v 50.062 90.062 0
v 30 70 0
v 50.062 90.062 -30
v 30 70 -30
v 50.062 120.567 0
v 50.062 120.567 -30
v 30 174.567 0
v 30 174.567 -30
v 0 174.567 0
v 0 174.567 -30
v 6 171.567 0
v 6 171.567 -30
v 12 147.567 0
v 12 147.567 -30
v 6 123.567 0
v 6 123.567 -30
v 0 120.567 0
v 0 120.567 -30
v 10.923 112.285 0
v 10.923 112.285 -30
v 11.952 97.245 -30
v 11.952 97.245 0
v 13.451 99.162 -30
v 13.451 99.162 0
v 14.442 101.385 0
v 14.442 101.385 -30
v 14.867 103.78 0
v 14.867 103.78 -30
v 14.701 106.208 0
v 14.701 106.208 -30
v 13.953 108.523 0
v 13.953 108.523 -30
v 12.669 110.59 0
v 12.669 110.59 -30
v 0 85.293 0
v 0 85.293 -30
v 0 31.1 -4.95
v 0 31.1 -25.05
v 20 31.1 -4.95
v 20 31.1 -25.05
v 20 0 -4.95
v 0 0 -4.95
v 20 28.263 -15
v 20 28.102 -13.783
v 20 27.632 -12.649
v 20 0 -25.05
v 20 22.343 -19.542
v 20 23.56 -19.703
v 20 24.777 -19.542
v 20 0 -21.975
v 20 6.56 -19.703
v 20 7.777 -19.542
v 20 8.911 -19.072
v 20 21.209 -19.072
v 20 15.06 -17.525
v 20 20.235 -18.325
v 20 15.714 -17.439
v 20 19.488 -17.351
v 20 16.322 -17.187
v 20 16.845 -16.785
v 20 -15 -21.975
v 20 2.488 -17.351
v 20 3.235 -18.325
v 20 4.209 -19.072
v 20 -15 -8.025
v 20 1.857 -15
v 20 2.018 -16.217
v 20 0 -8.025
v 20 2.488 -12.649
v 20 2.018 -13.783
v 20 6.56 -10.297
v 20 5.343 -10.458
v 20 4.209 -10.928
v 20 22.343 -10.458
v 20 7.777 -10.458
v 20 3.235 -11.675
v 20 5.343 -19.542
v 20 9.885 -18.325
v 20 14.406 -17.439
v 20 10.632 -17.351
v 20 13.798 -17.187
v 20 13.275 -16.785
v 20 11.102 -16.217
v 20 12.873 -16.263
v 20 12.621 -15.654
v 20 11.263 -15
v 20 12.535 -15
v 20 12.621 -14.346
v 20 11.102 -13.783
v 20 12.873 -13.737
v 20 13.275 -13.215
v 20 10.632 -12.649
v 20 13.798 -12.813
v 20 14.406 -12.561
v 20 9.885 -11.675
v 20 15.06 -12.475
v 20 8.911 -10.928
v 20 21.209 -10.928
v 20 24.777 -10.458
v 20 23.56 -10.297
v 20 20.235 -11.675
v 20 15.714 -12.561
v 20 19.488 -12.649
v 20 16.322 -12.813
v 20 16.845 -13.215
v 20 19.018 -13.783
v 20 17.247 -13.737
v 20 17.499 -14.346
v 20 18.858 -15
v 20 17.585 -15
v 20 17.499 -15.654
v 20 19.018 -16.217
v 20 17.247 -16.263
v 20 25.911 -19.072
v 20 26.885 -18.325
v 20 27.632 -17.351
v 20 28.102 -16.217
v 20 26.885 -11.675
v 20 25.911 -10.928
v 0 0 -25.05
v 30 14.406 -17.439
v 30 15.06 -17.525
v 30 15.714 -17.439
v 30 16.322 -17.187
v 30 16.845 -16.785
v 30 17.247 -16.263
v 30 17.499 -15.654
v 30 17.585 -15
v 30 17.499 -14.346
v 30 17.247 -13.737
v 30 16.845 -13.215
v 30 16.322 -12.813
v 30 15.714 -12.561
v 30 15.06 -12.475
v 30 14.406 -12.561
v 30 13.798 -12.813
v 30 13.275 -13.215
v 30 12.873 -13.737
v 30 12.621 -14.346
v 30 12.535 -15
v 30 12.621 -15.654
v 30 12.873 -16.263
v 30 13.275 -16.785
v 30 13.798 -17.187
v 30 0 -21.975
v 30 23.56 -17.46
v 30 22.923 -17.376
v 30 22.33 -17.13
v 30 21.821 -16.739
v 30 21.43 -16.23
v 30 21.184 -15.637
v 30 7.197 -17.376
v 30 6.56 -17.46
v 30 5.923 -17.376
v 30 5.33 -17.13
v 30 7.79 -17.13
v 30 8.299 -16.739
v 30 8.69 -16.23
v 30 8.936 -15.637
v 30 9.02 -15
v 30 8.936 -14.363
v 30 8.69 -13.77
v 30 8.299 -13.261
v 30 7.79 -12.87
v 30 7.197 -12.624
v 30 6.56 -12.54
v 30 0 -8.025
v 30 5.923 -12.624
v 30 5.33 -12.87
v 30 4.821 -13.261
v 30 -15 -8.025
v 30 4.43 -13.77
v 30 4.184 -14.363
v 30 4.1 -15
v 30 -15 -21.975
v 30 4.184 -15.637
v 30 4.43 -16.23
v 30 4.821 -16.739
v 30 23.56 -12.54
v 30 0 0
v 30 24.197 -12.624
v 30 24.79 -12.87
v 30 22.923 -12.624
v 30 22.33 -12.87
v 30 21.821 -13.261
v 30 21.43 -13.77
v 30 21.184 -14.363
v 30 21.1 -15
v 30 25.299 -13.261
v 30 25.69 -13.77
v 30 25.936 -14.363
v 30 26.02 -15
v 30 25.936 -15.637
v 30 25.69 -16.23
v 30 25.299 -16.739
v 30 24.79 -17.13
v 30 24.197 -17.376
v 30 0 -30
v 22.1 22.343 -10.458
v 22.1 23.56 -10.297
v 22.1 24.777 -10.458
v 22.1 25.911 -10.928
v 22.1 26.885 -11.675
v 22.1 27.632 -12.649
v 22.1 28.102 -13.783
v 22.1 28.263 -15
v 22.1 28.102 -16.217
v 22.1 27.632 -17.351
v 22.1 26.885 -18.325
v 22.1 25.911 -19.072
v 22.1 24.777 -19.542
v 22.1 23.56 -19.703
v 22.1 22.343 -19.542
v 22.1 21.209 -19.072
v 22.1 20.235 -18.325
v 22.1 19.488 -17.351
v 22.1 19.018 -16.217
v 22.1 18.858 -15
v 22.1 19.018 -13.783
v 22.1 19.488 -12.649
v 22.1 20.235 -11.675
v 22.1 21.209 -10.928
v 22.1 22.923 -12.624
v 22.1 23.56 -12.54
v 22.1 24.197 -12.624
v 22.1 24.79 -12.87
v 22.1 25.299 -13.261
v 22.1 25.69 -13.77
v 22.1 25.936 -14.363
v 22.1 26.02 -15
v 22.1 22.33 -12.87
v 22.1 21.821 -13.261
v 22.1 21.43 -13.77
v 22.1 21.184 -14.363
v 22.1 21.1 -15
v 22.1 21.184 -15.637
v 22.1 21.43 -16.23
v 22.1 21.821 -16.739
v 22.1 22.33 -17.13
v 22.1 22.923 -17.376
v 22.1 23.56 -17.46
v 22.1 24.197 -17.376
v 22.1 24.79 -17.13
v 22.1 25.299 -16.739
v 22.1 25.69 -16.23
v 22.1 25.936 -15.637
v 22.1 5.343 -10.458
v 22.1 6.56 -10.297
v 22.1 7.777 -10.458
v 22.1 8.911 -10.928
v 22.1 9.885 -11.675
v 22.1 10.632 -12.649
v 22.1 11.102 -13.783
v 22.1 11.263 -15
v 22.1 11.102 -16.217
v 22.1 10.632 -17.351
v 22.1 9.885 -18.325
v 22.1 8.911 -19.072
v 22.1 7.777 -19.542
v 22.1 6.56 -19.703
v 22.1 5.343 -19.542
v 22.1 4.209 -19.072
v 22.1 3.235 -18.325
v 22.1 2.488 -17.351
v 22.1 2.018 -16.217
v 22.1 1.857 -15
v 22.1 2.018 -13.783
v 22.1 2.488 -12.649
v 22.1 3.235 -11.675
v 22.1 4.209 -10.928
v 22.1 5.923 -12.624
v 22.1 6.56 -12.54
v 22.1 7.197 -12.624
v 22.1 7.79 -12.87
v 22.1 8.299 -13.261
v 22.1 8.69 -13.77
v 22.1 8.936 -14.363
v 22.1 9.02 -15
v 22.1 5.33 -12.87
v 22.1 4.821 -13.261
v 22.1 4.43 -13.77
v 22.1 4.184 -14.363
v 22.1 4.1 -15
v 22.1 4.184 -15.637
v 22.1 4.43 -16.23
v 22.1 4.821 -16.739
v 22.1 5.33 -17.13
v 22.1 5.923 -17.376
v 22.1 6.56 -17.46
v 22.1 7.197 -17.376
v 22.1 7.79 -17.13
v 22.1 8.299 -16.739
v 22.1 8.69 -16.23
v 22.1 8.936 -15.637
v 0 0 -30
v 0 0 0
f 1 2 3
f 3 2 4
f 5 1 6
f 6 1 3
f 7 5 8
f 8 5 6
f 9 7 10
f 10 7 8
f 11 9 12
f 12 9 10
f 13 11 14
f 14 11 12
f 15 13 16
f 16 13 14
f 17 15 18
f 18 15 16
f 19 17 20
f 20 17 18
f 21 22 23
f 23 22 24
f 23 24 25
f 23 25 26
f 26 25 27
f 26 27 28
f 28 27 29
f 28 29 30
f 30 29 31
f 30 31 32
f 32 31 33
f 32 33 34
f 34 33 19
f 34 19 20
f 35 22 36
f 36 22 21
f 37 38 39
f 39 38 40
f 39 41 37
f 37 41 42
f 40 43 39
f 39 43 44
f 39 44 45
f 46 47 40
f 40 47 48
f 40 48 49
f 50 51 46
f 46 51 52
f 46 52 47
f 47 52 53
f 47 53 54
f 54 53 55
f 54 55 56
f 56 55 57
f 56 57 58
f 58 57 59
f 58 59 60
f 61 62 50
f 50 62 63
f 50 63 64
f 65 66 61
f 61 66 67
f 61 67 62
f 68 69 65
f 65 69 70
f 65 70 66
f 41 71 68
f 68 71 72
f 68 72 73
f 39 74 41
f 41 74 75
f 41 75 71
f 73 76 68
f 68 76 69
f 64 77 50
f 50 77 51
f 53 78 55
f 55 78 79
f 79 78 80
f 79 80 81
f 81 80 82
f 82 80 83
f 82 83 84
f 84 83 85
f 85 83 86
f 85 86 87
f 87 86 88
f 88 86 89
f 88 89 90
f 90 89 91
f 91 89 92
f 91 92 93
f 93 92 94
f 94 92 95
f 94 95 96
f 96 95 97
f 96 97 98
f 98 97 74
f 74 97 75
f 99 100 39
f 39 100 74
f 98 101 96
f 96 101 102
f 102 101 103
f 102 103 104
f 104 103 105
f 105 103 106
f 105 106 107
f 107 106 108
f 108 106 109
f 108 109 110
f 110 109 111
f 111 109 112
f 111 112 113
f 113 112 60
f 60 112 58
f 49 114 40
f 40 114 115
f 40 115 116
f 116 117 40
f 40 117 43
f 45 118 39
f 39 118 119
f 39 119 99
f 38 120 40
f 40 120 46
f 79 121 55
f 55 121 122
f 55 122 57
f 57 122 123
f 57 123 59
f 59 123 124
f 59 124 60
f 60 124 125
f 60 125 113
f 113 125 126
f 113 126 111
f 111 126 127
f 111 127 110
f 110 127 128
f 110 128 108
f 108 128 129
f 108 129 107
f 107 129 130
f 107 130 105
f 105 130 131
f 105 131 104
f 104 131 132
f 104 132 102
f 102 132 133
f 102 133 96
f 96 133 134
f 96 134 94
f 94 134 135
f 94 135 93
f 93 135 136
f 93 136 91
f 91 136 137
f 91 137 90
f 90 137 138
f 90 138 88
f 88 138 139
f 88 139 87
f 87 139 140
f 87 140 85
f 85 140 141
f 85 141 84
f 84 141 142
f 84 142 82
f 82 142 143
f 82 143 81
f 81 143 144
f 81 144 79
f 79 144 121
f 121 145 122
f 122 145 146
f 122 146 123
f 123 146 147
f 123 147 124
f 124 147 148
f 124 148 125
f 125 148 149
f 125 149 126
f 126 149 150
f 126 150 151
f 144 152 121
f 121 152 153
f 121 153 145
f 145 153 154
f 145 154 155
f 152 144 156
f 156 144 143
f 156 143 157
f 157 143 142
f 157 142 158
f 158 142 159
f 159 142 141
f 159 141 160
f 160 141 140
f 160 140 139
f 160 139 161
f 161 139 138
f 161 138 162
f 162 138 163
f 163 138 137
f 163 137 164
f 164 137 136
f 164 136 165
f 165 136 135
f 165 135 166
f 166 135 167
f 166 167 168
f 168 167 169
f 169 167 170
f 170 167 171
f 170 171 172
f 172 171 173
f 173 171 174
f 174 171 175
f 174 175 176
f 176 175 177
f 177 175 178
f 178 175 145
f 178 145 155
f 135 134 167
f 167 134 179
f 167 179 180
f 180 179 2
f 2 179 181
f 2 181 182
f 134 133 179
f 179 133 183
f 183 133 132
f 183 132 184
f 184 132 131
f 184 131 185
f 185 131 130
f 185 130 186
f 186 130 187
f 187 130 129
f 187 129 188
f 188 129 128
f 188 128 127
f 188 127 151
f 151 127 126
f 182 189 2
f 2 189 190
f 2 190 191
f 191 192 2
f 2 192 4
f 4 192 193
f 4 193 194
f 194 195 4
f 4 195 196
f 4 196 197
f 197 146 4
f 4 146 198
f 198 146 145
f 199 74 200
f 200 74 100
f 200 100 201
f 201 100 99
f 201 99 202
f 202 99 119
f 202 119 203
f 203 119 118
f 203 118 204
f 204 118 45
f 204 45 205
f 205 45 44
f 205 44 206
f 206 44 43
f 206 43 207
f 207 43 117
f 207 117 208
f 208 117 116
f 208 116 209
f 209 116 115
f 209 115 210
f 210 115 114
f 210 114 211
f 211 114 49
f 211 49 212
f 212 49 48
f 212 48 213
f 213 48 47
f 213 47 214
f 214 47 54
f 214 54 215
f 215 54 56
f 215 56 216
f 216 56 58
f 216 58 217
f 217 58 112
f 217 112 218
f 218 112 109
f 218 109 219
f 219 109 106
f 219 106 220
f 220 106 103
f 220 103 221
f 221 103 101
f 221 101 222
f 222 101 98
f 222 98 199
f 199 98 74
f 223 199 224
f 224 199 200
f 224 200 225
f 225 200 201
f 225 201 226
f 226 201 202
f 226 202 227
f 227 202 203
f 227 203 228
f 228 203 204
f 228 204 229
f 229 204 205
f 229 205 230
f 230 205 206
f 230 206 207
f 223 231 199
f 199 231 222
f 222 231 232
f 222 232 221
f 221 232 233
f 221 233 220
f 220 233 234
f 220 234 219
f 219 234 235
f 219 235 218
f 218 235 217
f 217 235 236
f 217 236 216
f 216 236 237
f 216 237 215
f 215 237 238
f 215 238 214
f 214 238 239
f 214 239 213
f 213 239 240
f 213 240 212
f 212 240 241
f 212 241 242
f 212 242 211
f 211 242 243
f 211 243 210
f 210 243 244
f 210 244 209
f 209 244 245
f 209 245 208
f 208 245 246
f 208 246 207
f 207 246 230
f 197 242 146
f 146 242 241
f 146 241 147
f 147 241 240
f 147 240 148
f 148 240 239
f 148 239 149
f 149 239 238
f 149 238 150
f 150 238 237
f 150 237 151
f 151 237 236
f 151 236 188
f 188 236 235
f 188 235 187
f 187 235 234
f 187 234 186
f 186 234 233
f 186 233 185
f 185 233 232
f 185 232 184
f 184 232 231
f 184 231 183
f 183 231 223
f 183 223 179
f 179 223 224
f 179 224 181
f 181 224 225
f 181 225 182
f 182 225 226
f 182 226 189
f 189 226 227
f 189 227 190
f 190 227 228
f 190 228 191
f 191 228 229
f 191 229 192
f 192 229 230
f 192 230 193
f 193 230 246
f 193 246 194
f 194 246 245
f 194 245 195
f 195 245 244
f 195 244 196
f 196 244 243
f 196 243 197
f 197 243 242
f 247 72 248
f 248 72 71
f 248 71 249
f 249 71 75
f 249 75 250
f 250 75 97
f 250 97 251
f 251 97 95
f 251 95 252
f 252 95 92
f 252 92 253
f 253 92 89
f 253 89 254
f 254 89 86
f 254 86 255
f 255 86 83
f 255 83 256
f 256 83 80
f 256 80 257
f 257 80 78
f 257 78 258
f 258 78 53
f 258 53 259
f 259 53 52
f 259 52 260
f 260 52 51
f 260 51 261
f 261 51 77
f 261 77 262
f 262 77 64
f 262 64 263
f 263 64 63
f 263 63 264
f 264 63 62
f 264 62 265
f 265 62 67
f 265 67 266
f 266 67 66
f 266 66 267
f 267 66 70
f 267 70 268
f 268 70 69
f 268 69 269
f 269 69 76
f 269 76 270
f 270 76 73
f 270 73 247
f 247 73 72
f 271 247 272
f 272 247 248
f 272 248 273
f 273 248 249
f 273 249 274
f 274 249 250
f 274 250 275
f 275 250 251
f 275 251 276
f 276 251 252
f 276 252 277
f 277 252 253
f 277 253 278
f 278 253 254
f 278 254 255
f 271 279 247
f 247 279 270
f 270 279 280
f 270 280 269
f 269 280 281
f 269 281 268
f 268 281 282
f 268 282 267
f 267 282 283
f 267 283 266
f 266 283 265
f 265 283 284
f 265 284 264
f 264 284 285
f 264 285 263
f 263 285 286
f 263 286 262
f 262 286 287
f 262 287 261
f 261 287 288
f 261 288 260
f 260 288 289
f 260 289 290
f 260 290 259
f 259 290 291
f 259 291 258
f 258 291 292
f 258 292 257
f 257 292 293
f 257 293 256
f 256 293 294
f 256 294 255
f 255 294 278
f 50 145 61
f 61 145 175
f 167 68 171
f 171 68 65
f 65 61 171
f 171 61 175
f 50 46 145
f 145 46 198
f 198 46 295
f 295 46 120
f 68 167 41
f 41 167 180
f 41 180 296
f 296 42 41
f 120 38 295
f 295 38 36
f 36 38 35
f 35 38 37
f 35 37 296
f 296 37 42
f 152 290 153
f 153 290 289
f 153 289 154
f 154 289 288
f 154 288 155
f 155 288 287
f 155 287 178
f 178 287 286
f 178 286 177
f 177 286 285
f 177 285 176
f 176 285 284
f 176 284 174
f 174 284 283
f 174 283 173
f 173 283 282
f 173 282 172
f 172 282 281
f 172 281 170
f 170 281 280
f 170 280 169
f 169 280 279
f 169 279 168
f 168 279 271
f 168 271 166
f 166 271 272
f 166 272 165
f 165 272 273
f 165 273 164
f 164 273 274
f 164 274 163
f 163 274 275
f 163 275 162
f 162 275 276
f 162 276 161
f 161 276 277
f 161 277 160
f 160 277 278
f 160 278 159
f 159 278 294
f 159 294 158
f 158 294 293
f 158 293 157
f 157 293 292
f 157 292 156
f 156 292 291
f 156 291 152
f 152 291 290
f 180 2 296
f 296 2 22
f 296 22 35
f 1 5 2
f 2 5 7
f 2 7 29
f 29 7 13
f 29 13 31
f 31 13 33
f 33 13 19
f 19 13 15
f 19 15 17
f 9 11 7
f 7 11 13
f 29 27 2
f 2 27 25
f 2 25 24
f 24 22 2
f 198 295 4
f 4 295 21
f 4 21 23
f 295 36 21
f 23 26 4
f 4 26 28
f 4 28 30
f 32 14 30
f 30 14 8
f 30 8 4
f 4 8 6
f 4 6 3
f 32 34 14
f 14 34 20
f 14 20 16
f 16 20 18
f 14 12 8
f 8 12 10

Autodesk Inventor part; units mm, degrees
ref_plane "YZ Plane" through (0, 0, 0) normal (1, 0, 0) x (0, 1, 0)
ref_plane "XZ Plane" through (0, 0, 0) normal (0, 1, 0) x (-1, 0, 0)
ref_plane "XY Plane" through (0, 0, 0) normal (0, 0, 1) x (1, 0, 0)
sketch "Sketch1" plane through (0, 0, 0) normal (0, 0, 1) x (1, 0, 0)
  line L0 (0, 0) -> (25, 0)
  line L1 (25, 0) -> (25, 40)
  line L2 (25, 40) -> (0, 40)
  line L3 (0, 40) -> (0, 0)
  dimension "d1" = 25
  dimension "d2" = 40
  dimension "d3" = 25
extrude "Extrusion1" add sketch "Sketch1" against normal blind 30
sketch "Sketch2" plane through (25, 0, 0) normal (1, 0, 0) x (0, 0, -1)
  line L0 (0, 0) -> (30, 0) projected
  circle A0 centre (15, 6.56) radius 2.46
extrude "Extrusion2" cut sketch "Sketch2" against normal blind 30
sketch "Sketch3" plane through (0, 0, 0) normal (-1, 0, 0) x (0, 0, 1)
  line L0 (0, 0) -> (-30, 0) projected
  line L1 (-25.05, 0) -> (-4.95, 0)
  line L2 (-4.95, 0) -> (-4.95, 33.12)
  line L3 (-4.95, 33.12) -> (-25.05, 33.12)
  line L4 (-25.05, 33.12) -> (-25.05, 0)
  dimension "d11" = 20.1
extrude "Extrusion3" cut sketch "Sketch3" against normal blind 20
sketch "Sketch4" plane through (0, 0, 0) normal (0, -1, 0) x (1, 0, 0)
  line L0 (20, -4.95) -> (20, -25.05) projected
  line L1 (20, -15) -> (25, -15)
  line L2 (25, 0) -> (25, -30) projected
  line L3 (20, -8.025) -> (25, -8.025)
  line L4 (25, -8.025) -> (25, -21.975)
  line L5 (25, -21.975) -> (20, -21.975)
  line L6 (20, -21.975) -> (20, -8.025)
  line L7 (20, -8.025) -> (25, -21.975) construction
  line L8 (25, -8.025) -> (20, -21.975) construction
  line L9 (25, -12.54) -> (25, -17.46) projected
  point P0 (0, 0)
  point P1 (22.5, -15)
  dimension "d14" = 13.95
extrude "Extrusion4" add sketch "Sketch4" along normal blind 15
sketch "Sketch5" plane through (20, 0, 0) normal (-1, 0, 0) x (0, 0, 1)
  circle A0 centre (-15, 6.56) radius 2.46 projected
  circle A1 centre (-15, 6.56) radius 4.7025
  circle A2 centre (-15, 6.56) radius 2.46 projected
  circle A3 centre (-15, 6.56) radius 2.46
  point P0 (0, 0)
  dimension "d17" = 9.405
extrude "Extrusion5" cut sketch "Sketch5" against normal blind 2.1
sketch "Sketch6" plane through (25, 0, 0) normal (1, 0, 0) x (0, 0, -1)
  circle A0 centre (15, 6.56) radius 4.7025 projected
  line L0 (15, 6.56) -> (15, 23.56)
  circle A1 centre (15, 23.56) radius 2.46
  point P0 (0, 0)
  dimension "d20" = 17
  dimension "d21" = 4.92
extrude "Extrusion6" cut sketch "Sketch6" against normal blind 10 contours A1
sketch "Sketch7" plane through (20, 0, 0) normal (-1, 0, 0) x (0, 0, 1)
  circle A0 centre (-15, 23.56) radius 2.46 projected
  circle A1 centre (-15, 23.56) radius 4.7025
  point P0 (0, 0)
  dimension "d24" = 9.405
extrude "Extrusion7" cut sketch "Sketch7" against normal blind 2.1
sketch "Sketch9" plane through (25, 0, 0) normal (1, 0, 0) x (0, 0, -1)
  circle A0 centre (15, 6.56) radius 2.46 projected
  circle A1 centre (15, 6.56) radius 2.46
  circle A2 centre (15, 23.56) radius 2.46 projected
  circle A3 centre (15, 23.56) radius 2.46
  line L0 (30, 40) -> (30, 0) projected
  line L1 (30, 0) -> (30, 40)
  line L2 (30, 40) -> (0, 40)
  line L3 (0, 40) -> (0, 0)
  line L4 (0, 0) -> (8.025, 0) projected
  line L5 (21.975, 0) -> (21.975, -15)
  line L6 (21.975, -15) -> (8.025, -15)
  line L7 (8.025, -15) -> (8.025, 0)
  line L8 (0, 0) -> (8.025, 0)
  line L9 (21.975, 0) -> (30, 0)
extrude "Extrusion8" add sketch "Sketch9" along normal blind 5
sketch "Sketch10" plane through (0, 40, 0) normal (0, 1, 0) x (1, 0, 0)
  line L0 (0, 30) -> (30, 30) projected
  line L1 (30, 0) -> (0, 0) projected
  line L2 (0, 30) -> (30, 30)
  line L3 (30, 30) -> (30, 0)
  line L4 (30, 0) -> (0, 0)
  line L5 (0, 0) -> (0, 30)
extrude "Extrusion9" add sketch "Sketch10" along normal blind 30
sketch "Sketch12" plane through (30, 0, 0) normal (1, 0, 0) x (0, 0, -1)
  circle A0 centre (15, 6.56) radius 2.46 projected
  line L0 (15, 6.56) -> (15, 15.06)
  circle A1 centre (15, 15.06) radius 2.525
  point P0 (0, 0)
  dimension "d31" = 8.5
  dimension "d33" = 5.05
extrude "Extrusion10" cut sketch "Sketch12" against normal blind 30 contours A1
sketch "Sketch15" plane through (0, 0, -25.05) normal (-1, 0, 0) x (0, 0, 1)
  line L0 (0, 33.12) -> (20.1, 33.12) projected
  line L1 (20.1, 33.12) -> (20.1, 0) projected
  line L2 (0, 33.12) -> (20.1, 33.12)
  line L3 (20.1, 33.12) -> (20.1, 31.1)
  line L4 (20.1, 31.1) -> (0, 31.1)
  line L5 (0, 31.1) -> (0, 33.12)
  point P0 (25.05, 0)
  dimension "d57" = 2.02
extrude "Extrusion13" add sketch "Sketch15" against normal blind 20
sketch "Sketch17" plane through (0, 0, 0) normal (0, 0, 1) x (1, 0, 0)
  line L0 (0, 70) -> (30, 70) projected
  line L1 (30, 70) -> (50.0622, 90.0622)
  line L2 (30, 70) -> (80, 70) construction
  line L3 (11.9522, 97.2454) -> (0, 85.2932)
  line L4 (0, 70) -> (0, 85.2932)
  line L5 (0, 70) -> (0, 0) projected
  line L6 (0, 70) -> (30, 70)
  line L7 (10.923, 112.2849) -> (0, 120.567)
  line L8 (50.0622, 105.3553) -> (50.0622, 120.567)
  line L9 (50.0622, 105.3553) -> (50.0622, 90.0622)
  arc A0 (11.9522, 97.2454) -> (10.923, 112.2849) centre (4.8811, 104.3165) ccw
  line L10 (0, 174.567) -> (30, 174.567)
  line L11 (30, 174.567) -> (50.0622, 120.567)
  line L12 (6, 171.567) -> (0, 174.567)
  line L13 (6, 123.567) -> (0, 120.567)
  line L14 (6, 123.567) -> (12, 147.567)
  line L15 (6, 171.567) -> (12, 147.567)
  dimension "d61" = 45
  dimension "d62" = 32.0271
  dimension "d72" = 10
extrude "Extrusion14" add sketch "Sketch17" against normal blind 30
properties part number "rec_c_48mm_x_30mm"
